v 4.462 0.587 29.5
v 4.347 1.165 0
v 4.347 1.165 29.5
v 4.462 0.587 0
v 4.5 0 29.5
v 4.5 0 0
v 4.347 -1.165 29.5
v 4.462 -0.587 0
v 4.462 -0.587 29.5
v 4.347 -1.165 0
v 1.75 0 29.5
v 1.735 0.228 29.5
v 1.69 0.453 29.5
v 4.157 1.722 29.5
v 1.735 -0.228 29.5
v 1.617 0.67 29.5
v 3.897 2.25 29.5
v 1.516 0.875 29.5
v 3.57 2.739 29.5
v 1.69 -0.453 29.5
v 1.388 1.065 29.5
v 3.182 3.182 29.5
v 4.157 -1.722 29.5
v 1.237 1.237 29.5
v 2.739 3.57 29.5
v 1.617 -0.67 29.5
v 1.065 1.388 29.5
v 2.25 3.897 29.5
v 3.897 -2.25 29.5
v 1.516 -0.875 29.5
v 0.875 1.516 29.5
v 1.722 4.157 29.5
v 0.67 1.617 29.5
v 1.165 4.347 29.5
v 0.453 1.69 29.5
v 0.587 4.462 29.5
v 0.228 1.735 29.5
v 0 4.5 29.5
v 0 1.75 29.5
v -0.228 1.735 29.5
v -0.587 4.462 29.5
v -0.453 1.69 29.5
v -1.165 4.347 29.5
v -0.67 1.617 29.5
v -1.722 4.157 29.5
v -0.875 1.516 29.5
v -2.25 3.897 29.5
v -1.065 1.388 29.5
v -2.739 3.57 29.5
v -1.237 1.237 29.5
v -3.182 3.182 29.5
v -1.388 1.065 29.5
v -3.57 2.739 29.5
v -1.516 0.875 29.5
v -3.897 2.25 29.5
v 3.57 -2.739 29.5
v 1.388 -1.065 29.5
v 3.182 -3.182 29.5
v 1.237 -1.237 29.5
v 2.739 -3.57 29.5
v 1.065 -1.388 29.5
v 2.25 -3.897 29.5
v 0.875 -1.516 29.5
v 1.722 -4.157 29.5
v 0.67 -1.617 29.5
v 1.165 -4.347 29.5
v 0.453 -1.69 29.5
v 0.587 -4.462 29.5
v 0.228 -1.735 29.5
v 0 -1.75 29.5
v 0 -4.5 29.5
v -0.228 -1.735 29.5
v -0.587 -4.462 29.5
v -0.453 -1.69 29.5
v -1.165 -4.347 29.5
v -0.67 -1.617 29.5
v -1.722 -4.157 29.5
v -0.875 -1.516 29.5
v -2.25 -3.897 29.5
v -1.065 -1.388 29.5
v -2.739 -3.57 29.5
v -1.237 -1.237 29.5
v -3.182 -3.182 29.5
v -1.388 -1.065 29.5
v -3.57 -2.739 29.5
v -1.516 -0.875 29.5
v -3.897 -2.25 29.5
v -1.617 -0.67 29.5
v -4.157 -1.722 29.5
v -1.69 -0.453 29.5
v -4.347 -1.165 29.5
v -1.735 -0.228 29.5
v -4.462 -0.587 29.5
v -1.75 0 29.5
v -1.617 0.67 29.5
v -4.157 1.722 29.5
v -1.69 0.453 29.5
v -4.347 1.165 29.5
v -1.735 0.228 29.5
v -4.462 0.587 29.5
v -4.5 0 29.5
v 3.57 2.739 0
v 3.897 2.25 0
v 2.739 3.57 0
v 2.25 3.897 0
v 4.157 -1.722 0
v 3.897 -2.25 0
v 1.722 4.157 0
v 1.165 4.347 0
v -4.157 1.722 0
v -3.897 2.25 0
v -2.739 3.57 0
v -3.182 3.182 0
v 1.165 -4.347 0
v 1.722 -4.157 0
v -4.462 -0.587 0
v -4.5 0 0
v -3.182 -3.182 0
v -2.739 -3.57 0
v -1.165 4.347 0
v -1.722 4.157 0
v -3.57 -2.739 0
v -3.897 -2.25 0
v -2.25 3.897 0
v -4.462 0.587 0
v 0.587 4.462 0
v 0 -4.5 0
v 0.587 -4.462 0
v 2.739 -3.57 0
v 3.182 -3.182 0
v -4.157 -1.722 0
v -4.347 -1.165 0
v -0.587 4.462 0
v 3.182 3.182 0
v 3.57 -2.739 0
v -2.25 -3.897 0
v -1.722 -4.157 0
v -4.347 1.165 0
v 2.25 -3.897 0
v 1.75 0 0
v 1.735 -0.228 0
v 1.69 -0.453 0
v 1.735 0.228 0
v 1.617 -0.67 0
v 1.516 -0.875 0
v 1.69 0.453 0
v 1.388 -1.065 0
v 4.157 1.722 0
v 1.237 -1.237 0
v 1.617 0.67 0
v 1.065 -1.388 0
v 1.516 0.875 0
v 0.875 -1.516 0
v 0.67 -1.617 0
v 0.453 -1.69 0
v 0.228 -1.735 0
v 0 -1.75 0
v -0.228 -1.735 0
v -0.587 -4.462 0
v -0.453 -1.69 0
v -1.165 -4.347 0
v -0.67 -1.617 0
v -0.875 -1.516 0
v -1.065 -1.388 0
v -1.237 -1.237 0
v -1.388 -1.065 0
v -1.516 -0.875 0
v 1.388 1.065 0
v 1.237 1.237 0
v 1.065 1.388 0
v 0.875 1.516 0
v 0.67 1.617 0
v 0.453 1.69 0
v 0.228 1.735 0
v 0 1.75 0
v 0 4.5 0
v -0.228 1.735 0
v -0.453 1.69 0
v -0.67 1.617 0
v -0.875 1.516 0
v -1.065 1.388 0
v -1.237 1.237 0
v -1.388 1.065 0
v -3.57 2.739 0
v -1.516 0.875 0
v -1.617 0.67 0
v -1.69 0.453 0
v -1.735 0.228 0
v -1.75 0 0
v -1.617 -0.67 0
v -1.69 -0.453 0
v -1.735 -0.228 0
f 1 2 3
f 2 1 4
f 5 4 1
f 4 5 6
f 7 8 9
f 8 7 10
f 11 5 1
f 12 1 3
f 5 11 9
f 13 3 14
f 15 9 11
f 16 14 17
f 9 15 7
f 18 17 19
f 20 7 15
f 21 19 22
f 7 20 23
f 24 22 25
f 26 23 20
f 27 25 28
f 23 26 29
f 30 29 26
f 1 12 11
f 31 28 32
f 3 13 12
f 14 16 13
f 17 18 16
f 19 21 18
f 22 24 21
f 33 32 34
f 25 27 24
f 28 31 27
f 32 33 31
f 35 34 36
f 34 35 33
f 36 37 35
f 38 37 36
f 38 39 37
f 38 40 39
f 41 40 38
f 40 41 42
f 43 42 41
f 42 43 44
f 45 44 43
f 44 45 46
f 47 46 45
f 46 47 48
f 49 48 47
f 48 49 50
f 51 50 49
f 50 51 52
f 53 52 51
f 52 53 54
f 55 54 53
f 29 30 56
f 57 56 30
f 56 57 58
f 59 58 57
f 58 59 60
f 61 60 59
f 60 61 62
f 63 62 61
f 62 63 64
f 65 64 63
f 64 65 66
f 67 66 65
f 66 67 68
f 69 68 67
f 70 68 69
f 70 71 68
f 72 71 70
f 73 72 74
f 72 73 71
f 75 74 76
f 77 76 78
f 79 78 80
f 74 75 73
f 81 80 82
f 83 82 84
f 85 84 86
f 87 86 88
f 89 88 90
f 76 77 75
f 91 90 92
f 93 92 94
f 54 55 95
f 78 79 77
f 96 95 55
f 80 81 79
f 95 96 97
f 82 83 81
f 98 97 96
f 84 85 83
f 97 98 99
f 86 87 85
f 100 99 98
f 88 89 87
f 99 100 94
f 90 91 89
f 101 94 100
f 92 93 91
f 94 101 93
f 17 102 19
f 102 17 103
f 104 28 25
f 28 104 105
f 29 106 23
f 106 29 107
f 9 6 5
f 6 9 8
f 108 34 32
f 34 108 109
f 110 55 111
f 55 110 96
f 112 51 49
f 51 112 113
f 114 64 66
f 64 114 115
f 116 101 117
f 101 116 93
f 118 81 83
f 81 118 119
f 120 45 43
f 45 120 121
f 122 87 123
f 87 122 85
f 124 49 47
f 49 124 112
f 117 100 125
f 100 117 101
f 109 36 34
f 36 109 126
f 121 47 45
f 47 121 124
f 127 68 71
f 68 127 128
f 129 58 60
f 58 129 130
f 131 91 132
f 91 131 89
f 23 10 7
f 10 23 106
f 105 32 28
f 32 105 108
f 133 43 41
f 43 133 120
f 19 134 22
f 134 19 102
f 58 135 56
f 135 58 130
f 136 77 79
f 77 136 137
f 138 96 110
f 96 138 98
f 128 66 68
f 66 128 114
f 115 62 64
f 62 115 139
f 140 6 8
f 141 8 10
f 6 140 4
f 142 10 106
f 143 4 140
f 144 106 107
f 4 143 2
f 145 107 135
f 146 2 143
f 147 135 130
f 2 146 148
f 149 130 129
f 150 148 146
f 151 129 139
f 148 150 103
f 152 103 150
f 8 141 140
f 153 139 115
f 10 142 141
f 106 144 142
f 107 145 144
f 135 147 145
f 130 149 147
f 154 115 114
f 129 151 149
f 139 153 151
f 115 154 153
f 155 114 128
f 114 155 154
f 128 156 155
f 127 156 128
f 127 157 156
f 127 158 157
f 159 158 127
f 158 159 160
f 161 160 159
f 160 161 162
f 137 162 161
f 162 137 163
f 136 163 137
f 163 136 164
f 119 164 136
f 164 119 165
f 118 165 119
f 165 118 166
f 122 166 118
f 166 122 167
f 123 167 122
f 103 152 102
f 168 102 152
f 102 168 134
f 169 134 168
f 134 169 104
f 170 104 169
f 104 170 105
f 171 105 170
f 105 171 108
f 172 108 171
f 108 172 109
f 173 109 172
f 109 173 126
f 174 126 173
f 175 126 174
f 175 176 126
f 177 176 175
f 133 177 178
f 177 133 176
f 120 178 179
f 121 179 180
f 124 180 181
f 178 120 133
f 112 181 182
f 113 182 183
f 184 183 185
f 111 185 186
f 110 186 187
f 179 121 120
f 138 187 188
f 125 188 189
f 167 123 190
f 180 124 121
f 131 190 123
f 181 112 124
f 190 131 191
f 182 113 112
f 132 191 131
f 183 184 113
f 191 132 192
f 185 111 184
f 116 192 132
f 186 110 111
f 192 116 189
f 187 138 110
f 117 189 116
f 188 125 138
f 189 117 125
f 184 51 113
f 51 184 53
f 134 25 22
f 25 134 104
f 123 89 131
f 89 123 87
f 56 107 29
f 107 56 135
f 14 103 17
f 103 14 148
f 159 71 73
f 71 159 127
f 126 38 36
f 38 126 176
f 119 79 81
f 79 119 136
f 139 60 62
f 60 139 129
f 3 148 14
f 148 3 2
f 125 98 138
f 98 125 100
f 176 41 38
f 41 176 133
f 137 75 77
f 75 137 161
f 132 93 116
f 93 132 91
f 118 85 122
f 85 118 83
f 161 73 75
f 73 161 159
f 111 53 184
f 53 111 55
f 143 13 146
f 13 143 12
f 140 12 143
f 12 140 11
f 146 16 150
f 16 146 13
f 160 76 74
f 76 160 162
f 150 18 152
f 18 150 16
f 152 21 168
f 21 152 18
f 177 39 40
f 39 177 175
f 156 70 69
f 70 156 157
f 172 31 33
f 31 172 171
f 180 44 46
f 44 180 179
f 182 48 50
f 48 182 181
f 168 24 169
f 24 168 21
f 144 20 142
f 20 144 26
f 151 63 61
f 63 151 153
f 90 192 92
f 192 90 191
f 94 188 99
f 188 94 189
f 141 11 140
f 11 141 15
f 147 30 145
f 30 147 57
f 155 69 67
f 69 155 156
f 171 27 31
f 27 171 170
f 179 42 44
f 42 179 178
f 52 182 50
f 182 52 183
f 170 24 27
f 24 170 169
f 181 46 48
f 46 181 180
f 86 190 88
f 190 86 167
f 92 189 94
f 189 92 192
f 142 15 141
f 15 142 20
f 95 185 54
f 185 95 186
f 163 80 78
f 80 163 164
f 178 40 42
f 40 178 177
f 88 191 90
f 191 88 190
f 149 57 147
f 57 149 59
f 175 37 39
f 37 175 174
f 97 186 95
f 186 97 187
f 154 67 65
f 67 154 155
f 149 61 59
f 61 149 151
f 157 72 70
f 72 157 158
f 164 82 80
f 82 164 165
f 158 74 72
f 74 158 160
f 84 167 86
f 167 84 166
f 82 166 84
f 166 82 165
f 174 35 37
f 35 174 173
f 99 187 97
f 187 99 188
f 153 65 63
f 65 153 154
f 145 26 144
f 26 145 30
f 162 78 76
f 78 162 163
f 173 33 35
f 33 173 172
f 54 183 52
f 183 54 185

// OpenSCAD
// Gen-CT — frame standoff tube between stator and an endbell, on each M3 frame rod (outside rotor OD).
// Print x4. Height = frame_standoff_h (rotor + steel + hub + collar + running clearance).
include <parameters.scad>;
$fn = 48;
difference() {
    cylinder(d=standoff_od, h=frame_standoff_h);
    translate([0, 0, -0.1]) cylinder(d=m3_clear, h=frame_standoff_h + 0.2);
}
